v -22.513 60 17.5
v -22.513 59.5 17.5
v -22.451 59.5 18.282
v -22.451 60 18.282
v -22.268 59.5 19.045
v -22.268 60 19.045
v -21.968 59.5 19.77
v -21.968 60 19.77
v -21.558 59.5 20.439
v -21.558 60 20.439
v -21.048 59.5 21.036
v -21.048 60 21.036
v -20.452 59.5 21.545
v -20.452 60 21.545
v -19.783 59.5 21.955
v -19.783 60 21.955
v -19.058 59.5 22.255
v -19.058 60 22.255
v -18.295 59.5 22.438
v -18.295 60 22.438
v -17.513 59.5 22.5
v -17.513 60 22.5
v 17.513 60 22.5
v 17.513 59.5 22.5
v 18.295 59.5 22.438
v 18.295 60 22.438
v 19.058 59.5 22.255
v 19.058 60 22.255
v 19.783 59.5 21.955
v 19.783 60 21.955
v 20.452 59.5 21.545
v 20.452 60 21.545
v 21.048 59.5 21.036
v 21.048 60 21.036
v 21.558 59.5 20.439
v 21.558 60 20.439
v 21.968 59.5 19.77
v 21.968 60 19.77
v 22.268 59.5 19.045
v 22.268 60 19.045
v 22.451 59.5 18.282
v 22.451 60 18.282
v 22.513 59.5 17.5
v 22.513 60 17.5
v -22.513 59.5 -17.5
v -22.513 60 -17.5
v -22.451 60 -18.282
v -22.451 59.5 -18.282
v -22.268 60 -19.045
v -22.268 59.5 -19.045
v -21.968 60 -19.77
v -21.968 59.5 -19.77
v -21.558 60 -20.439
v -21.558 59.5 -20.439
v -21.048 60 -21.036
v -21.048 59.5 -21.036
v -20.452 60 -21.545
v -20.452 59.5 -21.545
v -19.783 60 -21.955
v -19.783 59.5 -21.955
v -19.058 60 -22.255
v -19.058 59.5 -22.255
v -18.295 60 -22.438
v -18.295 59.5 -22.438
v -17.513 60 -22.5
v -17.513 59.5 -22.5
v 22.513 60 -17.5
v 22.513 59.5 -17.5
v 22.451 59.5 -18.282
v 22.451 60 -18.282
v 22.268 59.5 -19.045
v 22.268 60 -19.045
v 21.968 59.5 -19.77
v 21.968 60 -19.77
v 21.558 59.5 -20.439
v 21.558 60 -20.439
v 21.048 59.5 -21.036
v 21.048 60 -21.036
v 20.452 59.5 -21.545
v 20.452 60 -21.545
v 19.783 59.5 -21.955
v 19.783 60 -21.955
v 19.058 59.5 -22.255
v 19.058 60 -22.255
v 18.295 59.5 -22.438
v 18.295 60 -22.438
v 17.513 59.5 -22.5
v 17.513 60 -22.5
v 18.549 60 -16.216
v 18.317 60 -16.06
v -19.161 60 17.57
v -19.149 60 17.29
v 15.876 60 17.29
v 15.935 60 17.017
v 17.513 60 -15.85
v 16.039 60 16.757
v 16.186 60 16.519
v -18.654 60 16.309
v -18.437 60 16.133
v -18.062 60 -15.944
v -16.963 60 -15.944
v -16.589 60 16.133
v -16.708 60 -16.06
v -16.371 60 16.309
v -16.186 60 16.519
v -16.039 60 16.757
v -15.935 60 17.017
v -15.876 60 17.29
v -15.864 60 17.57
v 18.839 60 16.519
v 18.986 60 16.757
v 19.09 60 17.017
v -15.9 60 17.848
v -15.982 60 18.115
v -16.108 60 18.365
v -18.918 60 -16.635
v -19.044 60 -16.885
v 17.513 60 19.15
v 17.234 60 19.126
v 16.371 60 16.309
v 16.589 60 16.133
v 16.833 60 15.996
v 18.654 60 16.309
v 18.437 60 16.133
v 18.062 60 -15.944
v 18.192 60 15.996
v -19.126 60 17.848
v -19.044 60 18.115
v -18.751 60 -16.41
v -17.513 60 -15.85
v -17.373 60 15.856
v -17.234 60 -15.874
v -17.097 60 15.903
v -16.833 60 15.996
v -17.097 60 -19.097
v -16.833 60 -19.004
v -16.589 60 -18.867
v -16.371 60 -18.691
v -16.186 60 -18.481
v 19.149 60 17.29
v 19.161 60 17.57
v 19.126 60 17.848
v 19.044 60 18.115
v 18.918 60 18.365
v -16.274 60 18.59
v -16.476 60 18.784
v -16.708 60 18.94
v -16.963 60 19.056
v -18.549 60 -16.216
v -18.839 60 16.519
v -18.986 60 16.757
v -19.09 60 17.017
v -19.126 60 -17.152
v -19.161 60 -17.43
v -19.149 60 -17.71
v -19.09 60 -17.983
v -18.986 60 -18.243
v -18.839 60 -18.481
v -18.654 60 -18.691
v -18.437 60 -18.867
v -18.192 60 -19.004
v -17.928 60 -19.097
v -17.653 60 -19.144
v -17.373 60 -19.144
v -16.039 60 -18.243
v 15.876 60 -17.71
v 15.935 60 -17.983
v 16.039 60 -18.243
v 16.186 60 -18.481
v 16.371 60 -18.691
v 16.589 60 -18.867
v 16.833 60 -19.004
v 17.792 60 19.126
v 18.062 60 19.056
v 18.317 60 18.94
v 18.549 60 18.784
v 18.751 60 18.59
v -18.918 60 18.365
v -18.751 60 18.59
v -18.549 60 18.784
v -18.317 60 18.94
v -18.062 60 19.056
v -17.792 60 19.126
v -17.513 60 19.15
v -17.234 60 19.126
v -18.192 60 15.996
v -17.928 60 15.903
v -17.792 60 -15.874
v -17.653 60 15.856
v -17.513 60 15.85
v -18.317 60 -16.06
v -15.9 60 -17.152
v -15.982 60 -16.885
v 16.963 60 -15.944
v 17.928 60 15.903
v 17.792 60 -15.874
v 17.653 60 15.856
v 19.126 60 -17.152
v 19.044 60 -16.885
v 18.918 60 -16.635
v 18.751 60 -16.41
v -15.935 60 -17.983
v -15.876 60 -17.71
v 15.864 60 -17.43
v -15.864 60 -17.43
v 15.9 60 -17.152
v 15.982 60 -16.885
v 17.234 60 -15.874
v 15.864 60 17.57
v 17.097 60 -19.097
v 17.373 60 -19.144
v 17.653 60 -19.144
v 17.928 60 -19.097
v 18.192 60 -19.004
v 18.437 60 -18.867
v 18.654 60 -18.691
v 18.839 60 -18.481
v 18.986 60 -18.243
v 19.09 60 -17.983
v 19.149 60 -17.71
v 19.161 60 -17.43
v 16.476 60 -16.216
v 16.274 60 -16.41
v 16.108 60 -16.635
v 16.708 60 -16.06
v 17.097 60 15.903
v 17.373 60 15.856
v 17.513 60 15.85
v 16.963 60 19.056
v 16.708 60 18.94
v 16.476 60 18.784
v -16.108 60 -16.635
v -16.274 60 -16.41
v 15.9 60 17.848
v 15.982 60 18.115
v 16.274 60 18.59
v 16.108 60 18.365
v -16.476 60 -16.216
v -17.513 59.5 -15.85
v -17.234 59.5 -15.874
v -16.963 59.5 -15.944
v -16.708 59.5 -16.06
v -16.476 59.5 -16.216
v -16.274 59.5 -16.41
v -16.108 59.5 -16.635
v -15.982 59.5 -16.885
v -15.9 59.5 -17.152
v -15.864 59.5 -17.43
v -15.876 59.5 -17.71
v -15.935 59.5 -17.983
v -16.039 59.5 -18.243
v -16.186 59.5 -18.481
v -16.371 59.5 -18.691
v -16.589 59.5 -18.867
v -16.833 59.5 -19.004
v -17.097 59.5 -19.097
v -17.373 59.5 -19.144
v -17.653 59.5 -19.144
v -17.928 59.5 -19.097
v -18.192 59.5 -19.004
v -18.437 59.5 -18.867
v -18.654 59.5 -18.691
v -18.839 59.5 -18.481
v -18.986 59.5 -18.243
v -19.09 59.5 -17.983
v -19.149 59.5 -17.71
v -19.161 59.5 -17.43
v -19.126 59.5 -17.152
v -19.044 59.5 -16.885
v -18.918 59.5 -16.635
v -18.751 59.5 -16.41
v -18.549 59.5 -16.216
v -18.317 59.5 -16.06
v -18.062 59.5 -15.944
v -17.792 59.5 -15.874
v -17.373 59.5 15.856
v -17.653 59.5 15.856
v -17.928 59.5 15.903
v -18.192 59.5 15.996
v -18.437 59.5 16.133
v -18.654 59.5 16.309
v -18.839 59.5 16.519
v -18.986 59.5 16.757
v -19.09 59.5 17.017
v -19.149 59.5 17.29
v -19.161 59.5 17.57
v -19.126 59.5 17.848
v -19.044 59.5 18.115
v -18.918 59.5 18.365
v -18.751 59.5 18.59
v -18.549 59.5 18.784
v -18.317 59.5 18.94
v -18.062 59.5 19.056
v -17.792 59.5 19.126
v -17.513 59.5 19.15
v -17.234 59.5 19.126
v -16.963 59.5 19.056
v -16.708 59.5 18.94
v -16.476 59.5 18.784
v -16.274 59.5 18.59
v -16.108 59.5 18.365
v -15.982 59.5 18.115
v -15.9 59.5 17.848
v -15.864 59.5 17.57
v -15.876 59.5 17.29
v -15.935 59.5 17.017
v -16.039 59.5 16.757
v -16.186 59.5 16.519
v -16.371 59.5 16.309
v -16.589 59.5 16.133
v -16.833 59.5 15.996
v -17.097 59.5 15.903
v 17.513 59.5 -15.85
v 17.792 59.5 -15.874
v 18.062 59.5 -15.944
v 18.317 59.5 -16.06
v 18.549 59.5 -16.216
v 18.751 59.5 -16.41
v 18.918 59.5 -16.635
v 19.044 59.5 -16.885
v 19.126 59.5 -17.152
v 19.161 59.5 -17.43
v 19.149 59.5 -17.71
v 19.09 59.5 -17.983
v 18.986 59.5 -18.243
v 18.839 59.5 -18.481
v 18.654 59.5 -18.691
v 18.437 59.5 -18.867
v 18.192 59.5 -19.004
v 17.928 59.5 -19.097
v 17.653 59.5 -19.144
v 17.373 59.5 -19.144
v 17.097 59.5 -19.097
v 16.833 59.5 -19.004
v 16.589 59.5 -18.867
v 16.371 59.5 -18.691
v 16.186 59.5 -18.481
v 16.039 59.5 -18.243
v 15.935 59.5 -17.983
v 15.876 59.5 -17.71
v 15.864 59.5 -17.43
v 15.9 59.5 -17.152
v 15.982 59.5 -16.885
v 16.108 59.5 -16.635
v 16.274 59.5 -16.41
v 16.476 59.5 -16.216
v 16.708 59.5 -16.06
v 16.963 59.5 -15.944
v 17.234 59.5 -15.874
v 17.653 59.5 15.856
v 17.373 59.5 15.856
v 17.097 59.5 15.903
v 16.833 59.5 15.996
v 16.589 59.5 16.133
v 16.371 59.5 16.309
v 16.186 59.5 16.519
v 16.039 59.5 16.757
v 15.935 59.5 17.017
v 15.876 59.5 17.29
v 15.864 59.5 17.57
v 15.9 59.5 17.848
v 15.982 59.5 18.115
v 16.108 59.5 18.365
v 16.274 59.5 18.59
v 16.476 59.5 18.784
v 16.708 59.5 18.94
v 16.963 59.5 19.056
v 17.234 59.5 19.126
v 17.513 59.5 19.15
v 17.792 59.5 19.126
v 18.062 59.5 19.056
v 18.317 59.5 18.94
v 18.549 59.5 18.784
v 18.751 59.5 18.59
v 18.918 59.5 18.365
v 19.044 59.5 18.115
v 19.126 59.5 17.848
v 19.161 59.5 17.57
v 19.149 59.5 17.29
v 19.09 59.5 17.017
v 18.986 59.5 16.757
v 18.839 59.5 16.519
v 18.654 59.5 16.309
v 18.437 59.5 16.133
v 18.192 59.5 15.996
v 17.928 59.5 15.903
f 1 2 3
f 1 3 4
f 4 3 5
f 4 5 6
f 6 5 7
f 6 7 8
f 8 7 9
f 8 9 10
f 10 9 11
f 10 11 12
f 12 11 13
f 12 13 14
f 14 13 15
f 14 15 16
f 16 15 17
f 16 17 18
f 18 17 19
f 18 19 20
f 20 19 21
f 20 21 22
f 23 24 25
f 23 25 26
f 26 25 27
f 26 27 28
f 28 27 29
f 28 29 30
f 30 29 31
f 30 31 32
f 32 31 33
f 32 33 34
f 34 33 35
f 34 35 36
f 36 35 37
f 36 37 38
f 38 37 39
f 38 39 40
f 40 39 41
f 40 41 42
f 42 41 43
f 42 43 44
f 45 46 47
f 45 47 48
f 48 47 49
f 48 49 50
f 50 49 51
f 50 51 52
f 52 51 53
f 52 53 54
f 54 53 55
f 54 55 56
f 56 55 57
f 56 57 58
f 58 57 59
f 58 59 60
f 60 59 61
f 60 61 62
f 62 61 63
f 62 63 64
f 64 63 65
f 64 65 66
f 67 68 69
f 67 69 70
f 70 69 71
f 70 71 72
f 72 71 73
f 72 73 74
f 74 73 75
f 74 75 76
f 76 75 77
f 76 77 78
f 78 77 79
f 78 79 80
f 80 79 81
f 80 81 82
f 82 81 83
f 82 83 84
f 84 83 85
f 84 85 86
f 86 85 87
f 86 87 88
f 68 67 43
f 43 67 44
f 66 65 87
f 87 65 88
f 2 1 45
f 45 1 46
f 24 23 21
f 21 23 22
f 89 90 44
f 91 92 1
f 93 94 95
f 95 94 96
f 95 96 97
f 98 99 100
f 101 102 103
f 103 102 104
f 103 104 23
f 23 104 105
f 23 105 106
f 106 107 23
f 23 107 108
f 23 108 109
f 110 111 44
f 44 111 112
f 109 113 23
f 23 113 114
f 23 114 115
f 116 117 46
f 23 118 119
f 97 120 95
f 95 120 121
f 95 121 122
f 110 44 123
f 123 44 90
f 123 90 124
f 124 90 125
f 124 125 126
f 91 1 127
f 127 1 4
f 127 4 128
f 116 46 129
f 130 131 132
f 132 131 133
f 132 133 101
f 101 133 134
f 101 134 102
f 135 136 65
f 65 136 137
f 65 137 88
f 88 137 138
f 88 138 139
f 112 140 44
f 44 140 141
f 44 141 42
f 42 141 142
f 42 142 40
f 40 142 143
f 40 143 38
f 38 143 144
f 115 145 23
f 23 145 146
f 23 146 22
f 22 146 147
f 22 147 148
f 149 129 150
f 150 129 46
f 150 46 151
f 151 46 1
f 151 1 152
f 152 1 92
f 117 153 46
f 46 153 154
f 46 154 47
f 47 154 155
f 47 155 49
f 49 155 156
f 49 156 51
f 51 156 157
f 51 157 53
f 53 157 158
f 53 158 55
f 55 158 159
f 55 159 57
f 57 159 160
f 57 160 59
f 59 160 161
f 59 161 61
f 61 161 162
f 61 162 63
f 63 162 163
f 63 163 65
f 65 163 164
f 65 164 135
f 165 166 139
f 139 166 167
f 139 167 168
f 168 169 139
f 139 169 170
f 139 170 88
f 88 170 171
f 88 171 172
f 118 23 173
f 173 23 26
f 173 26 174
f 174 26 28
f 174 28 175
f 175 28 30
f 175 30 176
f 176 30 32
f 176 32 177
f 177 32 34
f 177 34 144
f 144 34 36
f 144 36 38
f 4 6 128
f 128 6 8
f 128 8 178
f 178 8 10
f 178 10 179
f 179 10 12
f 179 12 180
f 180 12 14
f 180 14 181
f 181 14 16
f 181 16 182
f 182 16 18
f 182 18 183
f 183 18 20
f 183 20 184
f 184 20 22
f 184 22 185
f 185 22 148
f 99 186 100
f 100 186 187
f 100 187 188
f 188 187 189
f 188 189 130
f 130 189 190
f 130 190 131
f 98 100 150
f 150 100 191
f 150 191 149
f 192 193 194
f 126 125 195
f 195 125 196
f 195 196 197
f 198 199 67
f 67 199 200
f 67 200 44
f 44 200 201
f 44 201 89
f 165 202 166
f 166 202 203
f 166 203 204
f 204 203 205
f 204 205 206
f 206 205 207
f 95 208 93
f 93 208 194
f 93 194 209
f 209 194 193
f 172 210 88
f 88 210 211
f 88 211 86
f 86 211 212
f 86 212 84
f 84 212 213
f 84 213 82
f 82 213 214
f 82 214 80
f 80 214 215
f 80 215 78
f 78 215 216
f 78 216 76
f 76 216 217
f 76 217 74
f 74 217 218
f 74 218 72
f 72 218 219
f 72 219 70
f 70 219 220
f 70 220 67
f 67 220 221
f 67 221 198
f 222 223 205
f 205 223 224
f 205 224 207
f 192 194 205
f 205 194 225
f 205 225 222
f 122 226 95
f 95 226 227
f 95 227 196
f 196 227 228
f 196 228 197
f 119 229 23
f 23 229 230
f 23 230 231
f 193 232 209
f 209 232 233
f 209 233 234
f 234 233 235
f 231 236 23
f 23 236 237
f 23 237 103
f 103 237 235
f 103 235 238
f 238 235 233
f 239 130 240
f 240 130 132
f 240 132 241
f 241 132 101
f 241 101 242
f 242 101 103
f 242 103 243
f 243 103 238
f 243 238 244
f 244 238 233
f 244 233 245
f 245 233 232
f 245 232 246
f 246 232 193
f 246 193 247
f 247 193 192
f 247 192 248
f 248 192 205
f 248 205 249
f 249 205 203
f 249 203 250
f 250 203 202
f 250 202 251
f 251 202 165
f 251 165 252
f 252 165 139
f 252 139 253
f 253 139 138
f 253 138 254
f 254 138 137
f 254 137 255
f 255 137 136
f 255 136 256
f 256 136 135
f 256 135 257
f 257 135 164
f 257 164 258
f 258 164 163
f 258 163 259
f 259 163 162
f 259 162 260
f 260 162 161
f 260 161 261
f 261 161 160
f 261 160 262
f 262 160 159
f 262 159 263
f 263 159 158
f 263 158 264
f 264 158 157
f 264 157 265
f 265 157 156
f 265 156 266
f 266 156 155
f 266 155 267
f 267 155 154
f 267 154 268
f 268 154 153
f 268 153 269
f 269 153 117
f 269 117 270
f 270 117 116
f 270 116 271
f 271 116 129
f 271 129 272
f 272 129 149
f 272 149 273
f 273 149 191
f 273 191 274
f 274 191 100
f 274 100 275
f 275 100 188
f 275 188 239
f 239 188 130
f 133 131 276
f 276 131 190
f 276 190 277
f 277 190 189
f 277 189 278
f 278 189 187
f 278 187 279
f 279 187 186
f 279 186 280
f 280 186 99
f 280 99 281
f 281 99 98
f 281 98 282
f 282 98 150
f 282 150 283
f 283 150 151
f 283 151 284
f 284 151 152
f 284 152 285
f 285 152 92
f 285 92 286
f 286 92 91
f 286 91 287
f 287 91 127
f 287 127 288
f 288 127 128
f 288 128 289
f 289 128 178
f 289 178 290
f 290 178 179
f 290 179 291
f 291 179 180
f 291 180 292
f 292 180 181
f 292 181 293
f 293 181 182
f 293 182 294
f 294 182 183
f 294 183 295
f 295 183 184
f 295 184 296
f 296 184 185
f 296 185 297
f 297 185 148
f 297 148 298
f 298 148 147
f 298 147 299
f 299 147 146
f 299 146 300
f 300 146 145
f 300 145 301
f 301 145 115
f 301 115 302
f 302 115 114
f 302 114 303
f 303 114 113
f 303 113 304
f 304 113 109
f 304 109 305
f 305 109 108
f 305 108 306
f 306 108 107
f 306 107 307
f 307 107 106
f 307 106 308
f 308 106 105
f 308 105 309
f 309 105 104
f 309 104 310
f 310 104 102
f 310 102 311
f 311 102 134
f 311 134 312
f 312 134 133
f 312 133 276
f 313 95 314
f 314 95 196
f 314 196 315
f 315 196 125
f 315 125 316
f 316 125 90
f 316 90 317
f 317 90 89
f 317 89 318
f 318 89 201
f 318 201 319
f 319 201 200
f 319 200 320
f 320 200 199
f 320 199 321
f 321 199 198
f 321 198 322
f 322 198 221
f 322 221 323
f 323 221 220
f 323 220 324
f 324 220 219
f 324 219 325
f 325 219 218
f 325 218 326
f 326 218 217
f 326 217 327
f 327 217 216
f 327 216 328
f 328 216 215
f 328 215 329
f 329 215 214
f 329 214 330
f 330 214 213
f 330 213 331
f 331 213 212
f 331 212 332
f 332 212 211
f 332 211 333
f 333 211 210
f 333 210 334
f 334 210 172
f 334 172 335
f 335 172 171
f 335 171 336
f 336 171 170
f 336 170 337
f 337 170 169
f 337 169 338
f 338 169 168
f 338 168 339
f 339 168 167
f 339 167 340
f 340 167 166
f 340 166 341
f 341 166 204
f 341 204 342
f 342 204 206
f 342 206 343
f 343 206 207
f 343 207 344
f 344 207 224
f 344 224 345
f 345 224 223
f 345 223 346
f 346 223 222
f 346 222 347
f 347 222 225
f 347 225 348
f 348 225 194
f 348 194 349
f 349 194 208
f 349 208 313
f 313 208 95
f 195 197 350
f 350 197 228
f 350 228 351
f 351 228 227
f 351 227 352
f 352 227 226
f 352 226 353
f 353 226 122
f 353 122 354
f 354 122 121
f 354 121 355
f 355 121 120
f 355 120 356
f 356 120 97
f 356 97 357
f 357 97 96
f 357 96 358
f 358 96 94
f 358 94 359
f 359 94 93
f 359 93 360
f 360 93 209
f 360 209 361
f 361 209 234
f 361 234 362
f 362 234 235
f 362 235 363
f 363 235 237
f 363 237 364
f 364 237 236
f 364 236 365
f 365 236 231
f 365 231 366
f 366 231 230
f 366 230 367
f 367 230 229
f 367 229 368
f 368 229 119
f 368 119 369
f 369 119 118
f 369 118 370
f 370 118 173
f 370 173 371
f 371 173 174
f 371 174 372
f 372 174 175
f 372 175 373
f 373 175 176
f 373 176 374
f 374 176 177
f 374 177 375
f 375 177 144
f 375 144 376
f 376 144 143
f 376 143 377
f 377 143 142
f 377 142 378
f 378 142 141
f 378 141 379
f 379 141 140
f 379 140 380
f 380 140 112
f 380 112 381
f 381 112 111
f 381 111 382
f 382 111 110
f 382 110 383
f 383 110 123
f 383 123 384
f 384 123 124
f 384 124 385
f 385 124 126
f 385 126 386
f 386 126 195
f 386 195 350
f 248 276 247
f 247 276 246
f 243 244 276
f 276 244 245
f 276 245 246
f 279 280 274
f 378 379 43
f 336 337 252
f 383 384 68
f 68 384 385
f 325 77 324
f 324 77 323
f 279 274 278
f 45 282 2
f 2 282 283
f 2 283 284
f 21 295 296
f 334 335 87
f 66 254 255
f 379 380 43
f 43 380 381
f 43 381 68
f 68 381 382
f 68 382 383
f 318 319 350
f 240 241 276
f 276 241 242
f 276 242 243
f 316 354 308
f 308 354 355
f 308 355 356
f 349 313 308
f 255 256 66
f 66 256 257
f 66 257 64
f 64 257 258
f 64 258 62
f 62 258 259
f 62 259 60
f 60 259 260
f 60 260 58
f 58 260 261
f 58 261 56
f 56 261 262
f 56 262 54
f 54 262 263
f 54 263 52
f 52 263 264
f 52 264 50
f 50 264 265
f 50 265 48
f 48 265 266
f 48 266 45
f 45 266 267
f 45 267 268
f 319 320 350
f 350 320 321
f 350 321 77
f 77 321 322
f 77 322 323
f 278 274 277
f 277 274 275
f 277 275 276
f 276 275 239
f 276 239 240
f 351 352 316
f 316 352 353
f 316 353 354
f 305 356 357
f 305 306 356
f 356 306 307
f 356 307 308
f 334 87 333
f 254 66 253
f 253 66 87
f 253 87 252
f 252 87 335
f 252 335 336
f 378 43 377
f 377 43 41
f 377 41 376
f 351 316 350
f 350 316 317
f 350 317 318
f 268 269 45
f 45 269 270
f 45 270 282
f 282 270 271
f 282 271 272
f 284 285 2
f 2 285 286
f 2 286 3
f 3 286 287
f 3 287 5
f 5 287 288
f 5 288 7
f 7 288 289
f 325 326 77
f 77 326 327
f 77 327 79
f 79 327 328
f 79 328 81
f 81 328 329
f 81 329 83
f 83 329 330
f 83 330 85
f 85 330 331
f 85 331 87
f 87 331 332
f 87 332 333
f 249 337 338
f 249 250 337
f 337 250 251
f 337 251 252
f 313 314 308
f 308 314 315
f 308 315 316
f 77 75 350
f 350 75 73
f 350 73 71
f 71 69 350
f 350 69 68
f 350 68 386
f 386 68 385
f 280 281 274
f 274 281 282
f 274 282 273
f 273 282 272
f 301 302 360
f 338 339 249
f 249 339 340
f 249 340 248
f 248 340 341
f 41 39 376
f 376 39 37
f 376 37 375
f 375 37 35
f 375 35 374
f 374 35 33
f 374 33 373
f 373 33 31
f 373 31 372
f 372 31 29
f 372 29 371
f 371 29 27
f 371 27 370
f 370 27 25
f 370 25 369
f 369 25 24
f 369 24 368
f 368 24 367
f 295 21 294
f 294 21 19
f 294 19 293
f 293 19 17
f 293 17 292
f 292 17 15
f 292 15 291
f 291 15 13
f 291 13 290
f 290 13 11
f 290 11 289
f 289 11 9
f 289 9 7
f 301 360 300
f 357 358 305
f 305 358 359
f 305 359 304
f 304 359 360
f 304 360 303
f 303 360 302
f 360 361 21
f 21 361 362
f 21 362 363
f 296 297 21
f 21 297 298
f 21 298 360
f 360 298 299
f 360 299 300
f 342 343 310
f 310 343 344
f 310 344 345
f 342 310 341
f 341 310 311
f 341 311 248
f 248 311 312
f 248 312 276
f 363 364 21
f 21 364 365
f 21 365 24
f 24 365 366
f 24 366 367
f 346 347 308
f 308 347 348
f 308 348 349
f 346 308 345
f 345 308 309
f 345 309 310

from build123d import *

# Parameters (mm, degrees)
SKETCH1_W                                  = 45.025374044
SKETCH1_H                                  = 45
BOSS_EXTRUDE1_DEPTH                        = 60
FILLET3_R                                  = 5
FILLET4_R                                  = 5
FILLET7_R                                  = 5
FILLET8_R                                  = 5
SKETCH9_R                                  = 1.65
CUT_EXTRUDE6_DEPTH                         = 5
MIRROR2_AT_THE_SECOND_PLANE_COPY_1_SKETC_R = 1.65
MIRROR2_AT_THE_SECOND_PLANE_COPY_1_DEPTH   = 5
SKETCH10_W                                 = 54.362738508
SKETCH10_H                                 = 47.512908914
CUT_EXTRUDE7_DEPTH                         = 59.5


with BuildPart() as part:
    # Sketch1 → Boss-Extrude1 (new body)
    with BuildSketch(Plane(origin=(0, 0, 0), x_dir=(1, 0, 0), z_dir=(0, 1, 0))):
        Rectangle(SKETCH1_W, SKETCH1_H)
    extrude(amount=BOSS_EXTRUDE1_DEPTH)

    # Fillet3
    fillet3_edges = [part.edges().sort_by_distance(p)[0] for p in [
        (22.512687022, 30, -22.5),
    ]]
    fillet(fillet3_edges, radius=FILLET3_R)

    # Fillet4
    fillet4_edges = [part.edges().sort_by_distance(p)[0] for p in [
        (-22.512687022, 30, -22.5),
    ]]
    fillet(fillet4_edges, radius=FILLET4_R)

    # Fillet7
    fillet7_edges = [part.edges().sort_by_distance(p)[0] for p in [
        (22.512687022, 30, 22.5),
    ]]
    fillet(fillet7_edges, radius=FILLET7_R)

    # Fillet8
    fillet8_edges = [part.edges().sort_by_distance(p)[0] for p in [
        (-22.512687022, 30, 22.5),
    ]]
    fillet(fillet8_edges, radius=FILLET8_R)

    # Sketch9 → Cut-Extrude6 (cut)
    with BuildSketch(Plane(origin=(0, 60, 0), x_dir=(1, 0, 0), z_dir=(0, 1, 0))):
        with Locations(Location((-17.512687022, 17.5, 0), (0, 0, 270))):
            Circle(SKETCH9_R)
    cut_extrude6 = extrude(amount=-CUT_EXTRUDE6_DEPTH, mode=Mode.SUBTRACT)

    # Mirror2: Cut-Extrude6 across plane
    add(cut_extrude6.mirror(Plane(origin=(0, 0, 0), x_dir=(0, 0, 1), z_dir=(1, 0, 0))), mode=Mode.SUBTRACT)

    # Mirror2 at the second plane: Cut-Extrude6 across plane
    add(cut_extrude6.mirror(Plane.XY), mode=Mode.SUBTRACT)

    # Mirror2 at the second plane copy 1 sketc → Mirror2 at the second plane copy 1 (cut)
    with BuildSketch(Plane(origin=(0, 60, 0), x_dir=(-1, 0, 0), z_dir=(0, 1, 0))):
        with Locations(Location((-17.512687022, 17.5, 0), (0, 0, 270))):
            Circle(MIRROR2_AT_THE_SECOND_PLANE_COPY_1_SKETC_R)
    extrude(amount=-MIRROR2_AT_THE_SECOND_PLANE_COPY_1_DEPTH, mode=Mode.SUBTRACT)

    # Sketch10 → Cut-Extrude7 (cut)
    with BuildSketch(Plane.XZ):
        Rectangle(SKETCH10_W, SKETCH10_H)
    extrude(amount=-CUT_EXTRUDE7_DEPTH, mode=Mode.SUBTRACT)


solid = part.part
